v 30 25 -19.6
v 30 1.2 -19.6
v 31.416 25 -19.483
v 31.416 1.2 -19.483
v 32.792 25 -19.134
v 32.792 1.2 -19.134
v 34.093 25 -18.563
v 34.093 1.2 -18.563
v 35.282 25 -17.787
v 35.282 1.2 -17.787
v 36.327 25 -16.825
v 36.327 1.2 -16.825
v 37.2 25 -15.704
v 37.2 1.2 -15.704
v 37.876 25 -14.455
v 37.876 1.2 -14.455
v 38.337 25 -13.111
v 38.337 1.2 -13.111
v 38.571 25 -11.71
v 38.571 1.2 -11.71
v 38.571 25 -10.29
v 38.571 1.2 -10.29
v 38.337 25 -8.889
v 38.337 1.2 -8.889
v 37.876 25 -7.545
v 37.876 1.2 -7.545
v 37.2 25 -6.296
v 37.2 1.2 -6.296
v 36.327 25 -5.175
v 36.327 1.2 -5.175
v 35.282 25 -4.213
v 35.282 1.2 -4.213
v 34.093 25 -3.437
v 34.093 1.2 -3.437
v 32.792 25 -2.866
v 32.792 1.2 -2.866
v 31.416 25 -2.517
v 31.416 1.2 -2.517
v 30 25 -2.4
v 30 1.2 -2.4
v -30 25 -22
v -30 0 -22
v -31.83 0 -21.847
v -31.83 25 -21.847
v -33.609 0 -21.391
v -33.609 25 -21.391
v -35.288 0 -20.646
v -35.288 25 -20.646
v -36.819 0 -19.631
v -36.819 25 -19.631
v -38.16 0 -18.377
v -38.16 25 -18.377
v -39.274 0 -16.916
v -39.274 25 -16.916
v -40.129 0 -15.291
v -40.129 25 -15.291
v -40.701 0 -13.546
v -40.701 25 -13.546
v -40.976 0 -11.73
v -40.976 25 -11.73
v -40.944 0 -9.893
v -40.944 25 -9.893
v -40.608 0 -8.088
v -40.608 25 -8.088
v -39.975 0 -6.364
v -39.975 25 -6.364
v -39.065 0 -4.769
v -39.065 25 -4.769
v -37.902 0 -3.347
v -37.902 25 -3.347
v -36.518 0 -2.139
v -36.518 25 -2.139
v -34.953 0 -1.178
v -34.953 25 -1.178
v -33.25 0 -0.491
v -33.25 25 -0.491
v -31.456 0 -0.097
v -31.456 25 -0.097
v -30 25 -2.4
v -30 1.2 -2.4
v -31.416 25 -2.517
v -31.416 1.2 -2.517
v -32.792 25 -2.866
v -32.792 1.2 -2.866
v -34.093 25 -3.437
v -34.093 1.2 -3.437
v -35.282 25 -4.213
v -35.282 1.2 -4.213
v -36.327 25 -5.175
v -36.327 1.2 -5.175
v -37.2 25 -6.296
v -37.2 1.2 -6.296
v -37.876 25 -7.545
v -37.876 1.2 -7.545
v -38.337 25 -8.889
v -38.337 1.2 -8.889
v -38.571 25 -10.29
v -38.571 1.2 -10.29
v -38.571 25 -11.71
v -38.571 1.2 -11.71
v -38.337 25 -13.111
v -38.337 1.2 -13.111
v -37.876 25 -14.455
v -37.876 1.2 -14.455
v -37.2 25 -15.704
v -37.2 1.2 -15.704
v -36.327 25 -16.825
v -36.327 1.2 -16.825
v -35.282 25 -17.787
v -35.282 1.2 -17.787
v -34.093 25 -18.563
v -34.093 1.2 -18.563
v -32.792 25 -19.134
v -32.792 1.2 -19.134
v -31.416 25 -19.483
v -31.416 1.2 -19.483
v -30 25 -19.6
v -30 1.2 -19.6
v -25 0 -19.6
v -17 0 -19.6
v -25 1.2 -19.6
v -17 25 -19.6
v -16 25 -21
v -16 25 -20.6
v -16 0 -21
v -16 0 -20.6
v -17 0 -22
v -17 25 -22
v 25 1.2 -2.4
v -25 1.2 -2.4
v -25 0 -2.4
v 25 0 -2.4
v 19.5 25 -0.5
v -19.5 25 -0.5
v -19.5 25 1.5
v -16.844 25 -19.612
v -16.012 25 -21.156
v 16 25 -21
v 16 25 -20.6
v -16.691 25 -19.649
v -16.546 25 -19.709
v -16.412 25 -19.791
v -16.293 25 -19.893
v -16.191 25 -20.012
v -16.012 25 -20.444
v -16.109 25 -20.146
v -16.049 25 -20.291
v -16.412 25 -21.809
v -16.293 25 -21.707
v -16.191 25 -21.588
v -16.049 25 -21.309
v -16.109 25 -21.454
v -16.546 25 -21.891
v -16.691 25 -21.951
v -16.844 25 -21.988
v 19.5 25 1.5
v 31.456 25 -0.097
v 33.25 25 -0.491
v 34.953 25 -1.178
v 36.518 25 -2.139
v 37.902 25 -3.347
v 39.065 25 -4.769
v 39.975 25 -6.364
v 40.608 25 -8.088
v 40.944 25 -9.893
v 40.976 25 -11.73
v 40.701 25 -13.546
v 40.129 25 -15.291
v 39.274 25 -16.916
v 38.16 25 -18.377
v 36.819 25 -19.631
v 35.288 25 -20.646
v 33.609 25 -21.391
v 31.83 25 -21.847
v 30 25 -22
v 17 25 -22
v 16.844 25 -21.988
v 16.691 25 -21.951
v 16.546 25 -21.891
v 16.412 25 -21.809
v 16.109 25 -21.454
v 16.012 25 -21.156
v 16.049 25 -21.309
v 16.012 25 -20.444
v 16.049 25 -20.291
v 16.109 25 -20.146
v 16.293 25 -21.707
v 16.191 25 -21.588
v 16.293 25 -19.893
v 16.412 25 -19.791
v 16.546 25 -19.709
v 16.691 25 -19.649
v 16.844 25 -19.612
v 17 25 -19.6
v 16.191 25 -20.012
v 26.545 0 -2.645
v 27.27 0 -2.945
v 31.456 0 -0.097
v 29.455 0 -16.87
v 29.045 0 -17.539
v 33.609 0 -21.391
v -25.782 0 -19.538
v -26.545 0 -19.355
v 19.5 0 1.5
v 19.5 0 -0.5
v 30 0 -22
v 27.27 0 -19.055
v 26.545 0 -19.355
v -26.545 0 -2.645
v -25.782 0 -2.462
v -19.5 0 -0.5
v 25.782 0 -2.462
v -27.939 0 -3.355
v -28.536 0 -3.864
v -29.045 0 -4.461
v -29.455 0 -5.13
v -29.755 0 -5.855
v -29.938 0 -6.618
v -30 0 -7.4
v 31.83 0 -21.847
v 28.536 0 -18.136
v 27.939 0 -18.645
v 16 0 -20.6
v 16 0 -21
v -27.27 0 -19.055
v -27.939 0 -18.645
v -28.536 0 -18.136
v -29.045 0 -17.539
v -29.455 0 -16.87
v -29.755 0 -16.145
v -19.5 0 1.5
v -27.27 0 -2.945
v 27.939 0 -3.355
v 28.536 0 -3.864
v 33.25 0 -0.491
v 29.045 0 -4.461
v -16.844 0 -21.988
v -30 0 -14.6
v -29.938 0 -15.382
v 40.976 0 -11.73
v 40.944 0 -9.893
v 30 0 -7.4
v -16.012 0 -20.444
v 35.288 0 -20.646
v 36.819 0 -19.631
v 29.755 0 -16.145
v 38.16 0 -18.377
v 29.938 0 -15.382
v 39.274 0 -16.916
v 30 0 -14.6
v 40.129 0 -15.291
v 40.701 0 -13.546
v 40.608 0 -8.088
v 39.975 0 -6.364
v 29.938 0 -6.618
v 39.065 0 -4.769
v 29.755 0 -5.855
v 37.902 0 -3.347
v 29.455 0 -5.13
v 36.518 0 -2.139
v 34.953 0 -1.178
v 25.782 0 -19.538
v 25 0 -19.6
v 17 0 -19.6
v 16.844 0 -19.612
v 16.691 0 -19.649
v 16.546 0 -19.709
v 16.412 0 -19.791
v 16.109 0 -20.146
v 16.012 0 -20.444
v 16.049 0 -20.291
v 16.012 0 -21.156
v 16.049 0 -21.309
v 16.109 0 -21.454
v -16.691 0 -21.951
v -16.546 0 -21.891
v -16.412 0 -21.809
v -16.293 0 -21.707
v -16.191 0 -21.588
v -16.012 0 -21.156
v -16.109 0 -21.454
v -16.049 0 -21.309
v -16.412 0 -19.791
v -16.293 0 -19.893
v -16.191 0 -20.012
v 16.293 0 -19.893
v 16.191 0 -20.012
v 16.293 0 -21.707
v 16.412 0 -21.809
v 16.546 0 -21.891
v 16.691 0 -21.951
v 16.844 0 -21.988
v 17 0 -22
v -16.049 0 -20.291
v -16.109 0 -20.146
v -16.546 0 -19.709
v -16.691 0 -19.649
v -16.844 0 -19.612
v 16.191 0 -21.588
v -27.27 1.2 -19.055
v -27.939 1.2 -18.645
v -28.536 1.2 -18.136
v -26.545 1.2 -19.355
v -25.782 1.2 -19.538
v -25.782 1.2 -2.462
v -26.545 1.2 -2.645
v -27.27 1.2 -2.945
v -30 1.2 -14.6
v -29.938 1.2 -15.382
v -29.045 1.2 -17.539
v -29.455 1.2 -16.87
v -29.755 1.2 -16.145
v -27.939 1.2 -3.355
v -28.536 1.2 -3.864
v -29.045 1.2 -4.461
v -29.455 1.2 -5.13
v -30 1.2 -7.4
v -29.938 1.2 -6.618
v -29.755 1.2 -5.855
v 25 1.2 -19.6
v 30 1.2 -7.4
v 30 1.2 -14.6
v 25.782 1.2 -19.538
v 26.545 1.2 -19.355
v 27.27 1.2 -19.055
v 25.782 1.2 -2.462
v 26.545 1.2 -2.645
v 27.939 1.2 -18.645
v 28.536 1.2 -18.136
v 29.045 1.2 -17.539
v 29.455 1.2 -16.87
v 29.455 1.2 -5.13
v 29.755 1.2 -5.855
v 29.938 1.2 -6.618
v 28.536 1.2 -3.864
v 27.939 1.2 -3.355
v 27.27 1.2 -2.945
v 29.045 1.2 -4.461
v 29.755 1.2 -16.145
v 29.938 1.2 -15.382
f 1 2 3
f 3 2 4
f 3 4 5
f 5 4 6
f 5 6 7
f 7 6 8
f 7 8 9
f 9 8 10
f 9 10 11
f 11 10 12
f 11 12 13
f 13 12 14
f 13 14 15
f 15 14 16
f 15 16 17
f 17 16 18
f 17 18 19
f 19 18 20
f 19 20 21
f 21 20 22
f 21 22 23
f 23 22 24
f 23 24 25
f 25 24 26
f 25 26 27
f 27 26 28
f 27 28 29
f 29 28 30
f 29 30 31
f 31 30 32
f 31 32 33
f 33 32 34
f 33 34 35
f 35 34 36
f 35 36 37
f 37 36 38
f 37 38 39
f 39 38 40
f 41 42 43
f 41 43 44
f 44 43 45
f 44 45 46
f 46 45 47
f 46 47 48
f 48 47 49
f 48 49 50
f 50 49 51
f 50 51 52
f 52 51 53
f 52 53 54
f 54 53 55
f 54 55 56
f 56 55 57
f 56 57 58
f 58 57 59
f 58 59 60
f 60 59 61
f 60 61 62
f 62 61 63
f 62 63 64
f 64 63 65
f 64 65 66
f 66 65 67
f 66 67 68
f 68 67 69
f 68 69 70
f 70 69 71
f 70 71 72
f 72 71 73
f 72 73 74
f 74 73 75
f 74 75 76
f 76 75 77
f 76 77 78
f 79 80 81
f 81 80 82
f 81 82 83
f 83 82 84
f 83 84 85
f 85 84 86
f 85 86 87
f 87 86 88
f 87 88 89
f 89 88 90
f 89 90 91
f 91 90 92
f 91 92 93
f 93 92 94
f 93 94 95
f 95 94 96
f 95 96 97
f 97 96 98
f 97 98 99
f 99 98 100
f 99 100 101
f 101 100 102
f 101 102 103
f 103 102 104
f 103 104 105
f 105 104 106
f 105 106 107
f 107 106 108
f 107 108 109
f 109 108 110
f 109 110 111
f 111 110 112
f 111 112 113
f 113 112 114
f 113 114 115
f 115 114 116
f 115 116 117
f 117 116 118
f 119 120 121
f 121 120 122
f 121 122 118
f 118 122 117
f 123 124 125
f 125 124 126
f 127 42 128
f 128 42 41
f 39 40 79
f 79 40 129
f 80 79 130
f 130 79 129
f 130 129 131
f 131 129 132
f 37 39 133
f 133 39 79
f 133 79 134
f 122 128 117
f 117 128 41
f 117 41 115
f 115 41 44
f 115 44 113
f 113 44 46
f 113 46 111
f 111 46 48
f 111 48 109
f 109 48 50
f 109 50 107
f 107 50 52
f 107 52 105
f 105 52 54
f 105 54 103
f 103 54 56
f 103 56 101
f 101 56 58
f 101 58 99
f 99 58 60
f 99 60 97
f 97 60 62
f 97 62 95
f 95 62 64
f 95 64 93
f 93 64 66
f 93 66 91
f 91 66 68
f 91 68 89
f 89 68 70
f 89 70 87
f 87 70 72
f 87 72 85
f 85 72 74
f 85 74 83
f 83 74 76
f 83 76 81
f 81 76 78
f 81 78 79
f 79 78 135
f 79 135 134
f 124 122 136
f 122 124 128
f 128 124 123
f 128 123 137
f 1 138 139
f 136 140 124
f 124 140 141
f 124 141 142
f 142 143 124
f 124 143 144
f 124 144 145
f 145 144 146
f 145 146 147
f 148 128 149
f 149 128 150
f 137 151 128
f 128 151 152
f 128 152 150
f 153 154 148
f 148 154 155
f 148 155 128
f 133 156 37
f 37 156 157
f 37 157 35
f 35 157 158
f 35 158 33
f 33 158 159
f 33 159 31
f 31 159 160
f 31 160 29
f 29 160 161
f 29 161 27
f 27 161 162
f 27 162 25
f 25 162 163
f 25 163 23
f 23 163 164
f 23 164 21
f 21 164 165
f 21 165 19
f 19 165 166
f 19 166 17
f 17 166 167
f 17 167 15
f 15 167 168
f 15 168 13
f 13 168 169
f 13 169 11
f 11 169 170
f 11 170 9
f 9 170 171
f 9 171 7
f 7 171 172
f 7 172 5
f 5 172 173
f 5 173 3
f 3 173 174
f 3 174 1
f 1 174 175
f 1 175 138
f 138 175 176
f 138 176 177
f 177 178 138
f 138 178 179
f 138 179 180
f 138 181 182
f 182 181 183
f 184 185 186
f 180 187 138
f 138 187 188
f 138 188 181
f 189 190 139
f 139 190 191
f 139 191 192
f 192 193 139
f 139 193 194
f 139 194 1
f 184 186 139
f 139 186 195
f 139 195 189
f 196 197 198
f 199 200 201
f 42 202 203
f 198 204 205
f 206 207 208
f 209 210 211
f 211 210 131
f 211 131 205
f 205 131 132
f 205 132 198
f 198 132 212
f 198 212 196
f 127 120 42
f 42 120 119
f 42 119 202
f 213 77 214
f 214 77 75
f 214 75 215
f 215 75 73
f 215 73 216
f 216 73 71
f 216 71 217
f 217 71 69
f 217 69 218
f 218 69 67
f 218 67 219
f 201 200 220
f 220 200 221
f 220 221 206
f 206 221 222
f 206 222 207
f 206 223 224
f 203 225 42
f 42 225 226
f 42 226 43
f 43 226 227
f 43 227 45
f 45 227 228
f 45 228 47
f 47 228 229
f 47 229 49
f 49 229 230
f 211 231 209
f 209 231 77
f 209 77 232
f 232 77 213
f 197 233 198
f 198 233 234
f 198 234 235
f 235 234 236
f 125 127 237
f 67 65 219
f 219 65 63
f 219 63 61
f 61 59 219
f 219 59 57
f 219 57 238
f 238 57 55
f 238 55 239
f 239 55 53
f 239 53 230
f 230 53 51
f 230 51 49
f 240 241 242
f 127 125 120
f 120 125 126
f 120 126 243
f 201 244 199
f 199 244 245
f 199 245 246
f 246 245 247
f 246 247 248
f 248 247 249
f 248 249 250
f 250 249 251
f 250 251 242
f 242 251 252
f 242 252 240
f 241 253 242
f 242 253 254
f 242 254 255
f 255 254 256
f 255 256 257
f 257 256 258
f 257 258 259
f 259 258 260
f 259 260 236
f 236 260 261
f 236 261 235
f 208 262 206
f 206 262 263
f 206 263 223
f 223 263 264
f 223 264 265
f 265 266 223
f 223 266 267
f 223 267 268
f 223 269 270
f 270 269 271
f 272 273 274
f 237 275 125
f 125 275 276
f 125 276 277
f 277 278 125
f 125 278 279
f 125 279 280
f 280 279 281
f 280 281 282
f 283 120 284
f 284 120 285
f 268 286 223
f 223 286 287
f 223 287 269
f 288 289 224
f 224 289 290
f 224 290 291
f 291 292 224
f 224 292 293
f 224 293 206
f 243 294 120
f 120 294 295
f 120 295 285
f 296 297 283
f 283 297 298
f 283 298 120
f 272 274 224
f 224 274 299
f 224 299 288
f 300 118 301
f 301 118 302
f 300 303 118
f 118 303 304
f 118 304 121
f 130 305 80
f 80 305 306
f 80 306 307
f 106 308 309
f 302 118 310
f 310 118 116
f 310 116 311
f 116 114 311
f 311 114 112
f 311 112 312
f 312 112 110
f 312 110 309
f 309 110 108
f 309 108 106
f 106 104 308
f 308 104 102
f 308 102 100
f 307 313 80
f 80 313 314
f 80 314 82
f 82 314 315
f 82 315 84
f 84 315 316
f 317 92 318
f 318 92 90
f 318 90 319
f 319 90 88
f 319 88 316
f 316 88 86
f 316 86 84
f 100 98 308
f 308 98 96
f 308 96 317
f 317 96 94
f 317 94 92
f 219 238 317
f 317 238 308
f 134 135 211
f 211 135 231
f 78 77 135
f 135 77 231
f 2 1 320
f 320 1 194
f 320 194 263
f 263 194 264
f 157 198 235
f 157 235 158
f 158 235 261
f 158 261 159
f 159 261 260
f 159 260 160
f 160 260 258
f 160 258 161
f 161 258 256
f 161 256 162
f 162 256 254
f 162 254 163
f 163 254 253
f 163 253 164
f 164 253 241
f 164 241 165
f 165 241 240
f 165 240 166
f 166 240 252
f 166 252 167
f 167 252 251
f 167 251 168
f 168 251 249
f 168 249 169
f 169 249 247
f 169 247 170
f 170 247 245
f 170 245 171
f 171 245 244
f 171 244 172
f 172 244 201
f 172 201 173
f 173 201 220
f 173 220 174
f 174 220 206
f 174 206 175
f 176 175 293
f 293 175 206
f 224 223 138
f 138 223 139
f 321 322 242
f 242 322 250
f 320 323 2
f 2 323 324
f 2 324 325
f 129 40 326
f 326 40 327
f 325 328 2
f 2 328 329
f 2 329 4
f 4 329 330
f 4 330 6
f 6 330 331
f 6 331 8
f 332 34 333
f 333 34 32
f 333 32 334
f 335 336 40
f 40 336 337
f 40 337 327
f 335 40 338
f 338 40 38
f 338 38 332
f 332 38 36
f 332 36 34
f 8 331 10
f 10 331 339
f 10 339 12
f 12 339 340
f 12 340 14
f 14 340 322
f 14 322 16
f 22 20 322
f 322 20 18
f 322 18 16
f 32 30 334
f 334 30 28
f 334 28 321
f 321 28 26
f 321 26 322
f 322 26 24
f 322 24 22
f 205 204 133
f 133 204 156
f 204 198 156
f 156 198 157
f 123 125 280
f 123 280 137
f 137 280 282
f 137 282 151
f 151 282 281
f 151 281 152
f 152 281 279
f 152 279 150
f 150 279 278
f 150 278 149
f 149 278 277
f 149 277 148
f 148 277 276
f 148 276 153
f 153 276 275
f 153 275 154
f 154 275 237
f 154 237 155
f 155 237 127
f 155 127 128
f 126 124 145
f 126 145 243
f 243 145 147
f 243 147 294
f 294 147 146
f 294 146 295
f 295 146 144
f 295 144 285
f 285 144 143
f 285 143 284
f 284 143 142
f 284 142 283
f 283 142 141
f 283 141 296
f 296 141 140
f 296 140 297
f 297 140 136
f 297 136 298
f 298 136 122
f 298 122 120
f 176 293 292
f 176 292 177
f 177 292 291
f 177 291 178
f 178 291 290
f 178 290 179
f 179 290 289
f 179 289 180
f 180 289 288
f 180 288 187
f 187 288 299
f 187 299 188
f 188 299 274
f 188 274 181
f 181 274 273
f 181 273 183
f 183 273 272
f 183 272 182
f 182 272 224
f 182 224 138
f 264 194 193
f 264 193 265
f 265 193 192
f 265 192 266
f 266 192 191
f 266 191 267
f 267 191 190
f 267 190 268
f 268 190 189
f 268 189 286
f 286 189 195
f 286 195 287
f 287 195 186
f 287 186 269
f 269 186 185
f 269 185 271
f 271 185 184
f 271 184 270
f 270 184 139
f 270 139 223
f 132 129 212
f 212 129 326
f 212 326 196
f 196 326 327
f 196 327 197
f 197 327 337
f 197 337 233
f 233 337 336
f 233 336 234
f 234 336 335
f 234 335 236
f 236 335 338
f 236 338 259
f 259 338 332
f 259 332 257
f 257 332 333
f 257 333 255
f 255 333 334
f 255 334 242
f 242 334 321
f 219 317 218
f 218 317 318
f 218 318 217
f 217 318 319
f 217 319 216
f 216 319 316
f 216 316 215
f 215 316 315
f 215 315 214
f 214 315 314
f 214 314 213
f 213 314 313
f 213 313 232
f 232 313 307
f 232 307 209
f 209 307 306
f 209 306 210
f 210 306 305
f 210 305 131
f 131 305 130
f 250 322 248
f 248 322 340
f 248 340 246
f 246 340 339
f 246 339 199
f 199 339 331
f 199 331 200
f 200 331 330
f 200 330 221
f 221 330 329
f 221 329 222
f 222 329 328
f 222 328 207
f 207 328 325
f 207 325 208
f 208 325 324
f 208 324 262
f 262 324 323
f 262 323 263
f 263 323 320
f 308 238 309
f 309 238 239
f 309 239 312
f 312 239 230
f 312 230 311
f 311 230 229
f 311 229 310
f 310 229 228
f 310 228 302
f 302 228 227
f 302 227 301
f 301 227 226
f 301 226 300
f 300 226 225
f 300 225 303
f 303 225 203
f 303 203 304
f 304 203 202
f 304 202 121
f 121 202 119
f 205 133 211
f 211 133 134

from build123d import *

# Parameters (mm, degrees)
EXTRUDE_THIN1_DEPTH = 25
BOSS_EXTRUDE1_DEPTH = 1.2
BOSS_EXTRUDE2_DEPTH = 25
FILLET1_R           = 1
FILLET2_R           = 5
SKETCH6_W           = 39
SKETCH6_H           = 25
CUT_EXTRUDE1_DEPTH  = 0.5


with BuildPart() as part:
    # Sketch1 → Extrude-Thin1 (new body)
    with BuildSketch(Plane(origin=(0, 0, 0), x_dir=(1, 0, 0), z_dir=(0, 1, 0))):
        with BuildLine():
            Line((0, 0), (-30, 0))
            ThreePointArc((-30, 0), (-41, 11), (-30, 22))
            Line((-30, 22), (-16, 22))
            Line((-16, 22), (-16, 19.6))
            Line((-16, 19.6), (-30, 19.6))
            ThreePointArc((-30, 19.6), (-38.6, 11), (-30, 2.4))
            Line((-30, 2.4), (0, 2.4))
            Line((0, 2.4), (0, 0))
        make_face()
    extrude_thin1 = extrude(amount=EXTRUDE_THIN1_DEPTH)

    # Sketch2 → Boss-Extrude1 (add)
    with BuildSketch(Plane(origin=(0, 0, 0), x_dir=(1, 0, 0), z_dir=(0, 1, 0))):
        with BuildLine():
            Line((-30, 22), (-30, 0))
            ThreePointArc((-30, 0), (-41, 11), (-30, 22))
        make_face()
    boss_extrude1 = extrude(amount=BOSS_EXTRUDE1_DEPTH)

    # Sketch4 → Boss-Extrude2 (add)
    with BuildSketch(Plane(origin=(0, 0, 0), x_dir=(1, 0, 0), z_dir=(0, 1, 0))):
        Polygon((-19.5, 0), (-19.5, -1.5), (-31.456178185, 0.096810325), align=None)
    boss_extrude2 = extrude(amount=BOSS_EXTRUDE2_DEPTH)

    # Mirror1: Extrude-Thin1, Boss-Extrude1, Boss-Extrude2 across plane
    add(extrude_thin1.mirror(Plane(origin=(0, 25, -2.4), x_dir=(0, 0, 1), z_dir=(1, 0, 0))))
    add(boss_extrude1.mirror(Plane(origin=(0, 25, -2.4), x_dir=(0, 0, 1), z_dir=(1, 0, 0))))
    add(boss_extrude2.mirror(Plane(origin=(0, 25, -2.4), x_dir=(0, 0, 1), z_dir=(1, 0, 0))))

    # Fillet1
    fillet1_edges = [part.edges().sort_by_distance(p)[0] for p in [
        (-16, 12.5, -22),
        (-16, 12.5, -19.6),
        (16, 12.5, -19.6),
        (16, 12.5, -22),
    ]]
    fillet(fillet1_edges, radius=FILLET1_R)

    # Fillet2
    fillet2_edges = [part.edges().sort_by_distance(p)[0] for p in [
        (-30, 0.6, -19.6),
        (-30, 0.6, -2.4),
        (30, 0.6, -19.6),
        (30, 0.6, -2.4),
    ]]
    fillet(fillet2_edges, radius=FILLET2_R)

    # Sketch6 → Cut-Extrude1 (cut)
    with BuildSketch(Plane.XY):
        with Locations((0, 12.5)):
            Rectangle(SKETCH6_W, SKETCH6_H)
    extrude(amount=-CUT_EXTRUDE1_DEPTH, mode=Mode.SUBTRACT)


solid = part.part
